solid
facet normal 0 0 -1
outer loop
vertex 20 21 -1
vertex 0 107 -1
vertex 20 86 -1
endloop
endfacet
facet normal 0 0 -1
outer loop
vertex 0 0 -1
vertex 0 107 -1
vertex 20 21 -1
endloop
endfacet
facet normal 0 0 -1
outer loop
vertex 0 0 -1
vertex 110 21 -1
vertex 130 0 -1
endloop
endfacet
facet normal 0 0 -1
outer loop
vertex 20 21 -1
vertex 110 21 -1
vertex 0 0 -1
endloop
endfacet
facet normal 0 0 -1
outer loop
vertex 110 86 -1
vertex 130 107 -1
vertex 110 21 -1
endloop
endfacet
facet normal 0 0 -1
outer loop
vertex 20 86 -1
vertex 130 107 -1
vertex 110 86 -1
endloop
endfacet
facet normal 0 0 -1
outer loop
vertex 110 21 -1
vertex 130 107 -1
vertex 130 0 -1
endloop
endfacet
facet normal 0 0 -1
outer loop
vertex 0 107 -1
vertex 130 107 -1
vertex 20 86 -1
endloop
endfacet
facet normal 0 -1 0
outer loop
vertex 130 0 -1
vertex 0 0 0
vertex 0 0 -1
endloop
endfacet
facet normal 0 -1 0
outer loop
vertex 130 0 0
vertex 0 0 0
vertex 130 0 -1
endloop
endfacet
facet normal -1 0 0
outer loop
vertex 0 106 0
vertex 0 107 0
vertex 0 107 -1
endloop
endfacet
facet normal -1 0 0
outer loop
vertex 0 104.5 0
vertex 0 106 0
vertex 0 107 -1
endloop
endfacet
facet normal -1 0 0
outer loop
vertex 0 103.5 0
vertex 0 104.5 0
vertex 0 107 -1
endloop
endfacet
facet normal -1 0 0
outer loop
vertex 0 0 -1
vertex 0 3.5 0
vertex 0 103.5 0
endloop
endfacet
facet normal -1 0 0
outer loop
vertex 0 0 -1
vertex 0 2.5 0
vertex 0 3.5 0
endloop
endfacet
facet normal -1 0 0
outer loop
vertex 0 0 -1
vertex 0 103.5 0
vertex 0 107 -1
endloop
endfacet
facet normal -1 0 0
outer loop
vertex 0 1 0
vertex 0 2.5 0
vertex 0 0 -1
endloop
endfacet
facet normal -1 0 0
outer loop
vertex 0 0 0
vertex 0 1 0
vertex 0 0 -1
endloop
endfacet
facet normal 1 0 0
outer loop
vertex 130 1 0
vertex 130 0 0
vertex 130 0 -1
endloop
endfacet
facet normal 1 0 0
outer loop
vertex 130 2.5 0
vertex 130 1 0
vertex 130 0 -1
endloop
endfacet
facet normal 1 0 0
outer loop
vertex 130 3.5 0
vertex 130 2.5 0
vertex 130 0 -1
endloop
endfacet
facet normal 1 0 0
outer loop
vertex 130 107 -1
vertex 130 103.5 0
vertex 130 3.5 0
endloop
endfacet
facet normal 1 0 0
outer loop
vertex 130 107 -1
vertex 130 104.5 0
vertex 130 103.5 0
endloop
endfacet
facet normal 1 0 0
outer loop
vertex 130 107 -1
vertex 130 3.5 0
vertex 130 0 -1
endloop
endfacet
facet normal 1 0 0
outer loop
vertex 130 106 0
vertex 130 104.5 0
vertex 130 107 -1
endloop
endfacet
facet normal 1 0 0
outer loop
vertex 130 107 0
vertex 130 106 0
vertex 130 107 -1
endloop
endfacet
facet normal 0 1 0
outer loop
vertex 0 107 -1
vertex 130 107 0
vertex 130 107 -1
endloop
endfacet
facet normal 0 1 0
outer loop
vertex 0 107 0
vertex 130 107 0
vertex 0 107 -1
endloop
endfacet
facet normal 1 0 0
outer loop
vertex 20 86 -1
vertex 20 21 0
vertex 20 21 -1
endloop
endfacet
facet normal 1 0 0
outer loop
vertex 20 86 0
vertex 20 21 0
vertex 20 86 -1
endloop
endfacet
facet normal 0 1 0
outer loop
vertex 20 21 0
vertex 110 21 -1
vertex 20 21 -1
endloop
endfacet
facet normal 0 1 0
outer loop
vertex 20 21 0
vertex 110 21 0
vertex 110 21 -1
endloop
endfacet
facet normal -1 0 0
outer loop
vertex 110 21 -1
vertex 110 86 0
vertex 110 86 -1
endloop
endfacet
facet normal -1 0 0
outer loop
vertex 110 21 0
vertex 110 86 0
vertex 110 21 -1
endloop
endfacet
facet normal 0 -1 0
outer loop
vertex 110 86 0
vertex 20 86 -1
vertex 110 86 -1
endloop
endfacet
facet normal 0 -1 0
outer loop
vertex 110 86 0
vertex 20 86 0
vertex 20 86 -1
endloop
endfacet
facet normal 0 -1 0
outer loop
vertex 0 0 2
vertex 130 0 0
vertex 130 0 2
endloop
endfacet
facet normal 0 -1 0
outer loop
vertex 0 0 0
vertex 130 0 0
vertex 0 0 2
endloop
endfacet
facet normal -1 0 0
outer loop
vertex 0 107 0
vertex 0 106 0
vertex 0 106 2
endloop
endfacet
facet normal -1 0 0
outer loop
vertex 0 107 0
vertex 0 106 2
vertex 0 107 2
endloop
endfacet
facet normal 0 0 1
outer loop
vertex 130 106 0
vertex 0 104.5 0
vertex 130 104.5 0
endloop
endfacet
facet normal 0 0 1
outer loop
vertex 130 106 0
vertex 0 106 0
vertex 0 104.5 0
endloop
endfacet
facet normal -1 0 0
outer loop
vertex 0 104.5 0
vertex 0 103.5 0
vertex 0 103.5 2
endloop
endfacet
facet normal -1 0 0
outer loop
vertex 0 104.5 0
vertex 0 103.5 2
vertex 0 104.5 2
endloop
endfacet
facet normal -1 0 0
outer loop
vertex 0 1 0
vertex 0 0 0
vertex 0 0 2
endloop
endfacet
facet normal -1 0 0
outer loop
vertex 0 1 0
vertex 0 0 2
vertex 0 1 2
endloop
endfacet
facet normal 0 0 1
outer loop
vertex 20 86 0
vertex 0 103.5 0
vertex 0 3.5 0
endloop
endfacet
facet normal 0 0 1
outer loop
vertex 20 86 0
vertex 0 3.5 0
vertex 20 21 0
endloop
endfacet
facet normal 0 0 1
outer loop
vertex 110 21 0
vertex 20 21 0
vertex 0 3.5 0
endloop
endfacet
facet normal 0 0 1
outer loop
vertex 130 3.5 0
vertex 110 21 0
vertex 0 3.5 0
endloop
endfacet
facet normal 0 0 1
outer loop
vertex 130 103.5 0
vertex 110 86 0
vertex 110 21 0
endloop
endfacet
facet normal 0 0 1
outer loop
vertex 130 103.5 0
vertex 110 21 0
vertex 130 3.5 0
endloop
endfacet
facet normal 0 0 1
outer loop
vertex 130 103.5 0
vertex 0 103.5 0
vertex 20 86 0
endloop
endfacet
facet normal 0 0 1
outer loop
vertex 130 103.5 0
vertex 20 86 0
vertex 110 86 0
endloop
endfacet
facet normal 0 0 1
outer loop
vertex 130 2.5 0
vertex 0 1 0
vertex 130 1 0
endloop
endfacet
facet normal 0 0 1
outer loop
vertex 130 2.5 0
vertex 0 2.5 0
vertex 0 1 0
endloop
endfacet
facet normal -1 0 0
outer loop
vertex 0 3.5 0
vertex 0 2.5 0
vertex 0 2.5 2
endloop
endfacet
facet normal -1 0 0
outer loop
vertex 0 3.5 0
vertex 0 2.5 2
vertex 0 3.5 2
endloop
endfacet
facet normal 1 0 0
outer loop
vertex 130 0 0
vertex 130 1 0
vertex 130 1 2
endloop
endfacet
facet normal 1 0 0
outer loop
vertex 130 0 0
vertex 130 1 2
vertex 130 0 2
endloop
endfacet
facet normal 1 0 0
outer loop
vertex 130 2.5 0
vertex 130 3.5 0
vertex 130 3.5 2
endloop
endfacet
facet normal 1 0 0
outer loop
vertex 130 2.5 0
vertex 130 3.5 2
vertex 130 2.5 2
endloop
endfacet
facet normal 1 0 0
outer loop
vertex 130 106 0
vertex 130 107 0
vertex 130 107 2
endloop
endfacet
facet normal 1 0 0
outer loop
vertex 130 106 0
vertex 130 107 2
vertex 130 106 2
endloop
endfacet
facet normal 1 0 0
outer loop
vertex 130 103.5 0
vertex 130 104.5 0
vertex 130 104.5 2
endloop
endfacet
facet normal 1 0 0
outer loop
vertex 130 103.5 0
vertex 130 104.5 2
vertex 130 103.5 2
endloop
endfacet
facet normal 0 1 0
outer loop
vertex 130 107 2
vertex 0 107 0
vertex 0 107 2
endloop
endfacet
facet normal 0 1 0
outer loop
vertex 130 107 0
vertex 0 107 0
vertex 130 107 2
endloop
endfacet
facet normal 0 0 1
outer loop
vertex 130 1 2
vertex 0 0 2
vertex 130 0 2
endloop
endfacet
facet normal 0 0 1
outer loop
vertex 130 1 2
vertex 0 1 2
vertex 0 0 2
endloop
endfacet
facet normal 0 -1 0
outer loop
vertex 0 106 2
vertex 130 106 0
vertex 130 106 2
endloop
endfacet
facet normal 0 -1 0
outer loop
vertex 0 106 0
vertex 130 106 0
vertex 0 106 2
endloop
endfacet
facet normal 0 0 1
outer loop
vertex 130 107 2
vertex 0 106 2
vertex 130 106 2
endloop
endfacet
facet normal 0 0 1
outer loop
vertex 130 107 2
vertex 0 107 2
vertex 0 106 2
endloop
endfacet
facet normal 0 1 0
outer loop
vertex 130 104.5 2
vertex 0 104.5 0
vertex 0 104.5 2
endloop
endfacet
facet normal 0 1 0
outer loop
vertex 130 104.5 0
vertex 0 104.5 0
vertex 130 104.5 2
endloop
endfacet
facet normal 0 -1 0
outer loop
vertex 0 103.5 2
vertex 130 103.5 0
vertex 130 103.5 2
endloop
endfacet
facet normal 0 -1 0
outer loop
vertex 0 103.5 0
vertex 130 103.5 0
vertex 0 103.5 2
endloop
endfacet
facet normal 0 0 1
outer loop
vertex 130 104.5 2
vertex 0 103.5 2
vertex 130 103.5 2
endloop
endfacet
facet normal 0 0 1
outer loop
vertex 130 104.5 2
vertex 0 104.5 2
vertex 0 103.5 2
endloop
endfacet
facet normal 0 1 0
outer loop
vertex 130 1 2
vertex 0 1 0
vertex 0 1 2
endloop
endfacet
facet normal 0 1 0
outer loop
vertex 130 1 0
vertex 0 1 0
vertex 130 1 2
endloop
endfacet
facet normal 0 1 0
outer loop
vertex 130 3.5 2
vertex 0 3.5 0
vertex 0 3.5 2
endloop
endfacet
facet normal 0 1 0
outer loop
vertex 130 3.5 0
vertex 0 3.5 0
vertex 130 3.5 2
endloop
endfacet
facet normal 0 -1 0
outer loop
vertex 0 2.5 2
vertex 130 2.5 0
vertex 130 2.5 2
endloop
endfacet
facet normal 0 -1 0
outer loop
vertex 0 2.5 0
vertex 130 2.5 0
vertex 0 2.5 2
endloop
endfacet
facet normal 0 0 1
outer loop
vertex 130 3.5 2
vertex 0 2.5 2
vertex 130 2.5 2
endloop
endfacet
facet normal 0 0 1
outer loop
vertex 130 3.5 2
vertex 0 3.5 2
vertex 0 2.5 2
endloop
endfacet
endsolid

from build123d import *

# Parameters (mm, degrees)
SKETCH_W          = 130
SKETCH_H          = 107
PAD_DEPTH         = 1
SKETCH001_W       = 130
SKETCH001_H       = 1
PAD001_DEPTH      = 2
SKETCH002_W       = 130
SKETCH002_H       = 1
PAD002_DEPTH      = 2
SKETCH003_W       = 130
SKETCH003_H       = 1
PAD003_DEPTH      = 2
SKETCH004_W       = 130
SKETCH004_H       = 1
PAD004_DEPTH      = 2
SKETCH005_W       = 90
SKETCH005_H       = 65
POCKET_DEPTH      = 1.001
POCKET_DEPTH_BACK = 2.001


with BuildPart() as part:
    # Sketch → Pad (new body)
    with BuildSketch(Plane.XY):
        with Locations((65, 53.5)):
            Rectangle(SKETCH_W, SKETCH_H)
    extrude(amount=-PAD_DEPTH)

    # Sketch001 → Pad001 (join)
    with BuildSketch(Plane.XY):
        with Locations((65, 106.5)):
            Rectangle(SKETCH001_W, SKETCH001_H)
    extrude(amount=PAD001_DEPTH)

    # Sketch002 → Pad002 (join)
    with BuildSketch(Plane.XY):
        with Locations((65, 104)):
            Rectangle(SKETCH002_W, SKETCH002_H)
    extrude(amount=PAD002_DEPTH)

    # Sketch003 → Pad003 (join)
    with BuildSketch(Plane.XY):
        with Locations((65, 3)):
            Rectangle(SKETCH003_W, SKETCH003_H)
    extrude(amount=PAD003_DEPTH)

    # Sketch004 → Pad004 (join)
    with BuildSketch(Plane.XY):
        with Locations((65, 0.5)):
            Rectangle(SKETCH004_W, SKETCH004_H)
    extrude(amount=PAD004_DEPTH)

    # Sketch005 → Pocket (cut, two sides)
    with BuildSketch(Plane.XY) as pocket_sk:
        with Locations((65, 53.5)):
            Rectangle(SKETCH005_W, SKETCH005_H)
    extrude(amount=-POCKET_DEPTH, mode=Mode.SUBTRACT)
    extrude(pocket_sk.sketch, amount=POCKET_DEPTH_BACK, mode=Mode.SUBTRACT)


solid = part.part
